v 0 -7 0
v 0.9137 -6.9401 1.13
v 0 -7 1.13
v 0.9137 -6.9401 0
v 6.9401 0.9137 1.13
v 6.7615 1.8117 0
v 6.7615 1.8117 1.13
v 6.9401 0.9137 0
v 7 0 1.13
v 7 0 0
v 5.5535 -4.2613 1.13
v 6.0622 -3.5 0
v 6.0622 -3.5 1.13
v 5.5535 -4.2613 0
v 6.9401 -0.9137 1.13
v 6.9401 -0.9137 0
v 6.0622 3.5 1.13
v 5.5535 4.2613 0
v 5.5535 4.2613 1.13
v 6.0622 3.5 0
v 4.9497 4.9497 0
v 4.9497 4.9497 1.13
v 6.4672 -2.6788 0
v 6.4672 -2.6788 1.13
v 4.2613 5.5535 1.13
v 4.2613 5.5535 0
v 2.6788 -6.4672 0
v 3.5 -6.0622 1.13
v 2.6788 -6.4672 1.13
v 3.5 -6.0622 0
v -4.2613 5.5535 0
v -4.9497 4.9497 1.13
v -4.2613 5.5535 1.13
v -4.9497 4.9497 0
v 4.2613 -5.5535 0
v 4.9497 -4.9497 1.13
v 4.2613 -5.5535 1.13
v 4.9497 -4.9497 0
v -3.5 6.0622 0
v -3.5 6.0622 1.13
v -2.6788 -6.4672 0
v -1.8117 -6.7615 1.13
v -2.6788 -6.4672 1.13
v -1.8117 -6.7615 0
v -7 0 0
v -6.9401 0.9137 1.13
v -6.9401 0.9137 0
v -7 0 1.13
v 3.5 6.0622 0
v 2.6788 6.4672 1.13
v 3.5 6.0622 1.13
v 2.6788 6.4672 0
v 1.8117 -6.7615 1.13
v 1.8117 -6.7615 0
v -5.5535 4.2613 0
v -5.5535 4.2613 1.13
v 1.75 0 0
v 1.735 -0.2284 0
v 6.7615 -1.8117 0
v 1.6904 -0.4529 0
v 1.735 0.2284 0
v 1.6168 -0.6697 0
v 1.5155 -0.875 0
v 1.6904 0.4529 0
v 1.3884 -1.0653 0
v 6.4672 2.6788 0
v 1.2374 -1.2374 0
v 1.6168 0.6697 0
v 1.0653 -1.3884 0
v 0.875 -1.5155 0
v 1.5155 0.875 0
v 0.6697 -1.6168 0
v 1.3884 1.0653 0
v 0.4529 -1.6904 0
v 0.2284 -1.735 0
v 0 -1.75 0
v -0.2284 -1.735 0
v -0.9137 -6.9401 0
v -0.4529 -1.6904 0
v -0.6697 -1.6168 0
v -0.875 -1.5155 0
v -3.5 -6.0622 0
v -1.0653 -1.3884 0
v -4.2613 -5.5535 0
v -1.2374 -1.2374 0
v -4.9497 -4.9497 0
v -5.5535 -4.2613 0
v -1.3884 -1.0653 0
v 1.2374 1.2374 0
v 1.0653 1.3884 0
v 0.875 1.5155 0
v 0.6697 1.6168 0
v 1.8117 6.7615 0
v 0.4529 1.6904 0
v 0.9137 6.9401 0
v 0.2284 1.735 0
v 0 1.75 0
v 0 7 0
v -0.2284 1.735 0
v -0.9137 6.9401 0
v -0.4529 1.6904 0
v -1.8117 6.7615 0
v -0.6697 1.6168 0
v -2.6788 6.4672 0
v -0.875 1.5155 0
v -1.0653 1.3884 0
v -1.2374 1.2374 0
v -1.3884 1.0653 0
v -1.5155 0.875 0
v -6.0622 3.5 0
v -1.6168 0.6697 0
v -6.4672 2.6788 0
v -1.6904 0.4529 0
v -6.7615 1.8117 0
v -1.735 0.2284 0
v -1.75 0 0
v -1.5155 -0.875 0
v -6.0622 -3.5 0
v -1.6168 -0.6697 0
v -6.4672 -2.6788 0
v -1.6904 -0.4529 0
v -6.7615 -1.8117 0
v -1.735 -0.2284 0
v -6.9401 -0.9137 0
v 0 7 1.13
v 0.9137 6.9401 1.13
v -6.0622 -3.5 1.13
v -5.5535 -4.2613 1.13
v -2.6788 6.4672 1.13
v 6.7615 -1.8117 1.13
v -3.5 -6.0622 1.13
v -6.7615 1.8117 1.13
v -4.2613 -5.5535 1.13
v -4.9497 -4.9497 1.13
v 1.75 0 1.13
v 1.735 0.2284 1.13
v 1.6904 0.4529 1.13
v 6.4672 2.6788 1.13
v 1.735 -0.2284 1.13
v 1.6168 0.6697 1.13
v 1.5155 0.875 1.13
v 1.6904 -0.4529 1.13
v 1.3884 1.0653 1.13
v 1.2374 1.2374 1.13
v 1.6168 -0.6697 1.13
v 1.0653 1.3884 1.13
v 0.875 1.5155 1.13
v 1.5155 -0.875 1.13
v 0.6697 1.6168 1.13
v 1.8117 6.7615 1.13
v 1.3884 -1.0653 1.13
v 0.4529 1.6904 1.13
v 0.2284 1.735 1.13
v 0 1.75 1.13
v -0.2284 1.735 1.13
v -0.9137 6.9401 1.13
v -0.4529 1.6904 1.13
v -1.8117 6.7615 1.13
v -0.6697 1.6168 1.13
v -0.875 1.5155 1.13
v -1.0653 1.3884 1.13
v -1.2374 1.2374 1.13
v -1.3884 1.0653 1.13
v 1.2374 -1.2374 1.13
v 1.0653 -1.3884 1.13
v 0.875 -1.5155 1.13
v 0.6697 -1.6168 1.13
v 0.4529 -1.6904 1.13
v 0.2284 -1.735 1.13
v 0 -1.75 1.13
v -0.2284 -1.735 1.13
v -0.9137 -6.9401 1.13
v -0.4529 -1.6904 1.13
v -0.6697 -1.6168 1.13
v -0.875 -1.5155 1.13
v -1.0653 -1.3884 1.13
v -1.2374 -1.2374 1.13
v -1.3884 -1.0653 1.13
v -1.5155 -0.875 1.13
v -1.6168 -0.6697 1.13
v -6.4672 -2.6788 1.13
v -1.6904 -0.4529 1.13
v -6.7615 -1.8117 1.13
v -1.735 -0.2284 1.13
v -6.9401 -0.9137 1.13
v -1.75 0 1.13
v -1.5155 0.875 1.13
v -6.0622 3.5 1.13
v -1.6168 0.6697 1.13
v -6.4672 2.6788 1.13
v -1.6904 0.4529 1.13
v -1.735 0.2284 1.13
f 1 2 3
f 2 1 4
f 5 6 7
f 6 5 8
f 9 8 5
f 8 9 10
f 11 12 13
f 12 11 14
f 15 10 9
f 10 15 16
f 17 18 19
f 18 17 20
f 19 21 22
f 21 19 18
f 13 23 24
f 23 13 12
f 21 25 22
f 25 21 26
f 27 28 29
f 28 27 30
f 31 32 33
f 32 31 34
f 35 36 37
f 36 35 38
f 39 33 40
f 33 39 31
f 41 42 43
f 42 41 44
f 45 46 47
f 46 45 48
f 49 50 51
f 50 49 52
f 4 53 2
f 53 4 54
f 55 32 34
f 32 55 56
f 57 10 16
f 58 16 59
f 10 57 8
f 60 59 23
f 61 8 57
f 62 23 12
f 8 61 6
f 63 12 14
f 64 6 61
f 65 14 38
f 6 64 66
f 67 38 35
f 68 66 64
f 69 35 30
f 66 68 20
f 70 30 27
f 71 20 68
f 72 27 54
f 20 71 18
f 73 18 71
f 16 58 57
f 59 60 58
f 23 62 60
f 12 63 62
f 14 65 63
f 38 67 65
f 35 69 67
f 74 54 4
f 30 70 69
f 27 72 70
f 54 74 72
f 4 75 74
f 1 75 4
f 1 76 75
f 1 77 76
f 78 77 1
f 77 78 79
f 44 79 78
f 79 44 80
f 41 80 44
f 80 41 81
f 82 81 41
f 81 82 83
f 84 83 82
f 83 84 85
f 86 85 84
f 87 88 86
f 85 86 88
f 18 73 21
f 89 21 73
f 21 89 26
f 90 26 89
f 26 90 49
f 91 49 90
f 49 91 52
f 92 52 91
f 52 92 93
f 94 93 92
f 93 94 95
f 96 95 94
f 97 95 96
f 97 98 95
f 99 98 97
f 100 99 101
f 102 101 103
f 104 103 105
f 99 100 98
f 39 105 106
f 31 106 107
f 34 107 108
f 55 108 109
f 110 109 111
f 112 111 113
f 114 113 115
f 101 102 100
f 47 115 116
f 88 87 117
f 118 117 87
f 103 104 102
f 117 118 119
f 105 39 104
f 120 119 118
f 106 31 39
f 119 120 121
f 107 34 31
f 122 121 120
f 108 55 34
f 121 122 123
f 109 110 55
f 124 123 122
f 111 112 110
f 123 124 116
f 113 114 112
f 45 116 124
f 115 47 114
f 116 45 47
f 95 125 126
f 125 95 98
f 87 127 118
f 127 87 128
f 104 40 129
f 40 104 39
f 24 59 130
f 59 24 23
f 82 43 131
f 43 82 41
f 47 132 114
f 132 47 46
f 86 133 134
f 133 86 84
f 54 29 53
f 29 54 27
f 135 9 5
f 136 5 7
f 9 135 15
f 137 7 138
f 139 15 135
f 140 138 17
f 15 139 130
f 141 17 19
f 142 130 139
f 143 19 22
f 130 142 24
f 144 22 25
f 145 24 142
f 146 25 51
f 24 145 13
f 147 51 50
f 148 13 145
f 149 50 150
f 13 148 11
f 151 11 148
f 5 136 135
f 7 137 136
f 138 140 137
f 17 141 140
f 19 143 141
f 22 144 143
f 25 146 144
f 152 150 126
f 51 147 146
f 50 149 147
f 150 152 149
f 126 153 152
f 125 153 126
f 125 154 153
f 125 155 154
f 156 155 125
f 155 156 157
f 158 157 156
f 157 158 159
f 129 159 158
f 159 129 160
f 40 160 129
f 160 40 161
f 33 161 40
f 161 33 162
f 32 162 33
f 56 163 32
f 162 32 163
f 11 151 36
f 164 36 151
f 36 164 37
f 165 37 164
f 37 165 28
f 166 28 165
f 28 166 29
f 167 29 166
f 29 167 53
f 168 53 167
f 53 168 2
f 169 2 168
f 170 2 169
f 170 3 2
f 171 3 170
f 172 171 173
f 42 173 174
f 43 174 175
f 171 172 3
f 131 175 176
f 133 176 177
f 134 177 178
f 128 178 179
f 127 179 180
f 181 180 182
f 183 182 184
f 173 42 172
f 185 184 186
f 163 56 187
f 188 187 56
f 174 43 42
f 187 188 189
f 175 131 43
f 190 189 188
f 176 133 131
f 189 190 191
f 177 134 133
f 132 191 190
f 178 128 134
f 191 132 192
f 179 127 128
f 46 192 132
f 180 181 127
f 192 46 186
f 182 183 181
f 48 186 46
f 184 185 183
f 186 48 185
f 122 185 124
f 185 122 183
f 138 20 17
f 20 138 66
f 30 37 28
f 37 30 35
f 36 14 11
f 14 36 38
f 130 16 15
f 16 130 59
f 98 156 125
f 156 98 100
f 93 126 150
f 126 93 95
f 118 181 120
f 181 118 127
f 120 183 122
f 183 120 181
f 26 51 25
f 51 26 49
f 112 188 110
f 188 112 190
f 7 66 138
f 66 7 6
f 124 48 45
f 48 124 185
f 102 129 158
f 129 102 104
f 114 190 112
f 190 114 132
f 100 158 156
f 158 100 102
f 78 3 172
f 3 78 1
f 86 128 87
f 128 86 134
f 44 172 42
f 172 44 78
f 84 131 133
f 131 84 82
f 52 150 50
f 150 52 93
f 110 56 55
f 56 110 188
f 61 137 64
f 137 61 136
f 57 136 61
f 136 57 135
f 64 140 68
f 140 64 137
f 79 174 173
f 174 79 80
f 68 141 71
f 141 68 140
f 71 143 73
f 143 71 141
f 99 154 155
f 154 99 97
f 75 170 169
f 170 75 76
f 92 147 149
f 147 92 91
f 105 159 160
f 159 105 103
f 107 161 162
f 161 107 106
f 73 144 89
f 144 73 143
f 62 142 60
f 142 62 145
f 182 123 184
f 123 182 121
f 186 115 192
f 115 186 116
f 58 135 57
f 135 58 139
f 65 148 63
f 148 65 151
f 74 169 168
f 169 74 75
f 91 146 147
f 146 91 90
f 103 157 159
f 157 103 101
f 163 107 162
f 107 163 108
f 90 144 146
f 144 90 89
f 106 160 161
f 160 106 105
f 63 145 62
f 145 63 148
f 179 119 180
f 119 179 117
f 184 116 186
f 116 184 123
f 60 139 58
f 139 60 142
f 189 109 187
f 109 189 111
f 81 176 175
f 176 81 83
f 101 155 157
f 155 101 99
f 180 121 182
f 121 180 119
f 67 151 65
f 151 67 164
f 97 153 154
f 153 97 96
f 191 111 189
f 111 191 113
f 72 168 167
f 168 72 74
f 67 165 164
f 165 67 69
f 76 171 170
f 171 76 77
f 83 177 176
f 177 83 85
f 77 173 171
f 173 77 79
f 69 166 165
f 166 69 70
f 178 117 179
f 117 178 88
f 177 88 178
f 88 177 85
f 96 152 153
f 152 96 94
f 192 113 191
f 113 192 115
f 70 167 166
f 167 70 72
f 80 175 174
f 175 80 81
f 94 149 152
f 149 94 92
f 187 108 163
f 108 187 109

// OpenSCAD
// file: parameters.scad
// =============================================================================
// Gen-AO Stacked dual-stator mid-rotor copper-max ultra - WOUND-AWARE (HARD GATE)
// ONE mid dual-face Halbach rotor | TWO wound pancake stators | 18 coils x165 t
// =============================================================================

wire_awg            = 26;
wire_od             = 0.45;
turns               = 165;      // +10 vs Gen-AL 155; 18x165x~0.119 ~ 353 m
fill                = 0.70;
layers_per_face     = 2;
wind_build_axial    = layers_per_face * wire_od * fill;   // 0.63
wind_build_radial   = 3 * wire_od * fill;                 // 0.945

coil_id_r           = 18.0;
coil_od_r           = 63.0;
span_deg            = 34.0;     // 9 stations x 40 deg
former_web          = 1.30;     // thinner vs AL 1.40
flange_t            = 0.60;
wall                = 1.2;
slot_w              = 2.4;
mount_hole          = 3.5;
tab_len             = 7.0;

former_bare_h       = former_web + 2 * flange_t;            // 2.50
coil_envelope_h     = former_bare_h + 2 * wind_build_axial; // 3.76

run_clear           = 0.50;
gap_spacer_h        = run_clear + wind_build_axial;         // 1.13
m2m                 = coil_envelope_h + 2 * run_clear;      // 4.76 per gap

coil_stations       = 9;        // per stator; x2 = 18 total
bay_r_in            = coil_id_r - 2.0 - wind_build_radial;
bay_r_out           = coil_od_r + 2.0 + wind_build_radial;
bay_span            = span_deg + 4.0;
bay_offset          = 2.0;
bay_depth           = former_bare_h + wind_build_axial;     // wound sits in bay
stator_back_web     = 2.0;
stator_thick        = bay_depth + stator_back_web;
stator_od           = 156.0;
shaft_clear_stator  = 38.0;
coil_mount_r        = 27.5;

large_pocket_d      = 20.3;
small_pocket_d      = 5.3;
pocket_h            = 5.2;
large_n             = 8;
R_large             = 40.0;     // tighter copper overlap vs AL R=41
R_small_inner       = 26.5;
R_small_mid         = 40.0;
R_small_outer       = 56.5;
carrier_od          = 154.0;
mid_carrier_thick   = 12.0;
hub_h               = 10.0;
hub_od              = 30.0;
rotor_b_offset_deg  = 22.5;

shaft_bore          = 8.35;
bearing_d           = 21.85;
bearing_h           = 7.2;
m3_clear            = 3.5;
bolt_r_inner        = 36.0;
bolt_n_inner        = 6;
flange_bolt_r       = 72.0;
flange_bolt_n       = 6;
brace_r             = 68.0;
brace_d             = 4.3;
brace_n             = 4;

spacer_pad_od       = 14.0;
spacer_pad_id       = m3_clear;
endbell_od          = 156.0;
endbell_thick       = 8.0;
endbell_shaft_clear = 10.0;

$fn = 64;
// main file
// Gen-AO gap spacer — h = run_clear + wind_build_axial
include <parameters.scad>;
$fn = 48;
difference() {
    cylinder(d=spacer_pad_od, h=gap_spacer_h);
    translate([0, 0, -0.1]) cylinder(d=spacer_pad_id, h=gap_spacer_h + 0.2);
}
